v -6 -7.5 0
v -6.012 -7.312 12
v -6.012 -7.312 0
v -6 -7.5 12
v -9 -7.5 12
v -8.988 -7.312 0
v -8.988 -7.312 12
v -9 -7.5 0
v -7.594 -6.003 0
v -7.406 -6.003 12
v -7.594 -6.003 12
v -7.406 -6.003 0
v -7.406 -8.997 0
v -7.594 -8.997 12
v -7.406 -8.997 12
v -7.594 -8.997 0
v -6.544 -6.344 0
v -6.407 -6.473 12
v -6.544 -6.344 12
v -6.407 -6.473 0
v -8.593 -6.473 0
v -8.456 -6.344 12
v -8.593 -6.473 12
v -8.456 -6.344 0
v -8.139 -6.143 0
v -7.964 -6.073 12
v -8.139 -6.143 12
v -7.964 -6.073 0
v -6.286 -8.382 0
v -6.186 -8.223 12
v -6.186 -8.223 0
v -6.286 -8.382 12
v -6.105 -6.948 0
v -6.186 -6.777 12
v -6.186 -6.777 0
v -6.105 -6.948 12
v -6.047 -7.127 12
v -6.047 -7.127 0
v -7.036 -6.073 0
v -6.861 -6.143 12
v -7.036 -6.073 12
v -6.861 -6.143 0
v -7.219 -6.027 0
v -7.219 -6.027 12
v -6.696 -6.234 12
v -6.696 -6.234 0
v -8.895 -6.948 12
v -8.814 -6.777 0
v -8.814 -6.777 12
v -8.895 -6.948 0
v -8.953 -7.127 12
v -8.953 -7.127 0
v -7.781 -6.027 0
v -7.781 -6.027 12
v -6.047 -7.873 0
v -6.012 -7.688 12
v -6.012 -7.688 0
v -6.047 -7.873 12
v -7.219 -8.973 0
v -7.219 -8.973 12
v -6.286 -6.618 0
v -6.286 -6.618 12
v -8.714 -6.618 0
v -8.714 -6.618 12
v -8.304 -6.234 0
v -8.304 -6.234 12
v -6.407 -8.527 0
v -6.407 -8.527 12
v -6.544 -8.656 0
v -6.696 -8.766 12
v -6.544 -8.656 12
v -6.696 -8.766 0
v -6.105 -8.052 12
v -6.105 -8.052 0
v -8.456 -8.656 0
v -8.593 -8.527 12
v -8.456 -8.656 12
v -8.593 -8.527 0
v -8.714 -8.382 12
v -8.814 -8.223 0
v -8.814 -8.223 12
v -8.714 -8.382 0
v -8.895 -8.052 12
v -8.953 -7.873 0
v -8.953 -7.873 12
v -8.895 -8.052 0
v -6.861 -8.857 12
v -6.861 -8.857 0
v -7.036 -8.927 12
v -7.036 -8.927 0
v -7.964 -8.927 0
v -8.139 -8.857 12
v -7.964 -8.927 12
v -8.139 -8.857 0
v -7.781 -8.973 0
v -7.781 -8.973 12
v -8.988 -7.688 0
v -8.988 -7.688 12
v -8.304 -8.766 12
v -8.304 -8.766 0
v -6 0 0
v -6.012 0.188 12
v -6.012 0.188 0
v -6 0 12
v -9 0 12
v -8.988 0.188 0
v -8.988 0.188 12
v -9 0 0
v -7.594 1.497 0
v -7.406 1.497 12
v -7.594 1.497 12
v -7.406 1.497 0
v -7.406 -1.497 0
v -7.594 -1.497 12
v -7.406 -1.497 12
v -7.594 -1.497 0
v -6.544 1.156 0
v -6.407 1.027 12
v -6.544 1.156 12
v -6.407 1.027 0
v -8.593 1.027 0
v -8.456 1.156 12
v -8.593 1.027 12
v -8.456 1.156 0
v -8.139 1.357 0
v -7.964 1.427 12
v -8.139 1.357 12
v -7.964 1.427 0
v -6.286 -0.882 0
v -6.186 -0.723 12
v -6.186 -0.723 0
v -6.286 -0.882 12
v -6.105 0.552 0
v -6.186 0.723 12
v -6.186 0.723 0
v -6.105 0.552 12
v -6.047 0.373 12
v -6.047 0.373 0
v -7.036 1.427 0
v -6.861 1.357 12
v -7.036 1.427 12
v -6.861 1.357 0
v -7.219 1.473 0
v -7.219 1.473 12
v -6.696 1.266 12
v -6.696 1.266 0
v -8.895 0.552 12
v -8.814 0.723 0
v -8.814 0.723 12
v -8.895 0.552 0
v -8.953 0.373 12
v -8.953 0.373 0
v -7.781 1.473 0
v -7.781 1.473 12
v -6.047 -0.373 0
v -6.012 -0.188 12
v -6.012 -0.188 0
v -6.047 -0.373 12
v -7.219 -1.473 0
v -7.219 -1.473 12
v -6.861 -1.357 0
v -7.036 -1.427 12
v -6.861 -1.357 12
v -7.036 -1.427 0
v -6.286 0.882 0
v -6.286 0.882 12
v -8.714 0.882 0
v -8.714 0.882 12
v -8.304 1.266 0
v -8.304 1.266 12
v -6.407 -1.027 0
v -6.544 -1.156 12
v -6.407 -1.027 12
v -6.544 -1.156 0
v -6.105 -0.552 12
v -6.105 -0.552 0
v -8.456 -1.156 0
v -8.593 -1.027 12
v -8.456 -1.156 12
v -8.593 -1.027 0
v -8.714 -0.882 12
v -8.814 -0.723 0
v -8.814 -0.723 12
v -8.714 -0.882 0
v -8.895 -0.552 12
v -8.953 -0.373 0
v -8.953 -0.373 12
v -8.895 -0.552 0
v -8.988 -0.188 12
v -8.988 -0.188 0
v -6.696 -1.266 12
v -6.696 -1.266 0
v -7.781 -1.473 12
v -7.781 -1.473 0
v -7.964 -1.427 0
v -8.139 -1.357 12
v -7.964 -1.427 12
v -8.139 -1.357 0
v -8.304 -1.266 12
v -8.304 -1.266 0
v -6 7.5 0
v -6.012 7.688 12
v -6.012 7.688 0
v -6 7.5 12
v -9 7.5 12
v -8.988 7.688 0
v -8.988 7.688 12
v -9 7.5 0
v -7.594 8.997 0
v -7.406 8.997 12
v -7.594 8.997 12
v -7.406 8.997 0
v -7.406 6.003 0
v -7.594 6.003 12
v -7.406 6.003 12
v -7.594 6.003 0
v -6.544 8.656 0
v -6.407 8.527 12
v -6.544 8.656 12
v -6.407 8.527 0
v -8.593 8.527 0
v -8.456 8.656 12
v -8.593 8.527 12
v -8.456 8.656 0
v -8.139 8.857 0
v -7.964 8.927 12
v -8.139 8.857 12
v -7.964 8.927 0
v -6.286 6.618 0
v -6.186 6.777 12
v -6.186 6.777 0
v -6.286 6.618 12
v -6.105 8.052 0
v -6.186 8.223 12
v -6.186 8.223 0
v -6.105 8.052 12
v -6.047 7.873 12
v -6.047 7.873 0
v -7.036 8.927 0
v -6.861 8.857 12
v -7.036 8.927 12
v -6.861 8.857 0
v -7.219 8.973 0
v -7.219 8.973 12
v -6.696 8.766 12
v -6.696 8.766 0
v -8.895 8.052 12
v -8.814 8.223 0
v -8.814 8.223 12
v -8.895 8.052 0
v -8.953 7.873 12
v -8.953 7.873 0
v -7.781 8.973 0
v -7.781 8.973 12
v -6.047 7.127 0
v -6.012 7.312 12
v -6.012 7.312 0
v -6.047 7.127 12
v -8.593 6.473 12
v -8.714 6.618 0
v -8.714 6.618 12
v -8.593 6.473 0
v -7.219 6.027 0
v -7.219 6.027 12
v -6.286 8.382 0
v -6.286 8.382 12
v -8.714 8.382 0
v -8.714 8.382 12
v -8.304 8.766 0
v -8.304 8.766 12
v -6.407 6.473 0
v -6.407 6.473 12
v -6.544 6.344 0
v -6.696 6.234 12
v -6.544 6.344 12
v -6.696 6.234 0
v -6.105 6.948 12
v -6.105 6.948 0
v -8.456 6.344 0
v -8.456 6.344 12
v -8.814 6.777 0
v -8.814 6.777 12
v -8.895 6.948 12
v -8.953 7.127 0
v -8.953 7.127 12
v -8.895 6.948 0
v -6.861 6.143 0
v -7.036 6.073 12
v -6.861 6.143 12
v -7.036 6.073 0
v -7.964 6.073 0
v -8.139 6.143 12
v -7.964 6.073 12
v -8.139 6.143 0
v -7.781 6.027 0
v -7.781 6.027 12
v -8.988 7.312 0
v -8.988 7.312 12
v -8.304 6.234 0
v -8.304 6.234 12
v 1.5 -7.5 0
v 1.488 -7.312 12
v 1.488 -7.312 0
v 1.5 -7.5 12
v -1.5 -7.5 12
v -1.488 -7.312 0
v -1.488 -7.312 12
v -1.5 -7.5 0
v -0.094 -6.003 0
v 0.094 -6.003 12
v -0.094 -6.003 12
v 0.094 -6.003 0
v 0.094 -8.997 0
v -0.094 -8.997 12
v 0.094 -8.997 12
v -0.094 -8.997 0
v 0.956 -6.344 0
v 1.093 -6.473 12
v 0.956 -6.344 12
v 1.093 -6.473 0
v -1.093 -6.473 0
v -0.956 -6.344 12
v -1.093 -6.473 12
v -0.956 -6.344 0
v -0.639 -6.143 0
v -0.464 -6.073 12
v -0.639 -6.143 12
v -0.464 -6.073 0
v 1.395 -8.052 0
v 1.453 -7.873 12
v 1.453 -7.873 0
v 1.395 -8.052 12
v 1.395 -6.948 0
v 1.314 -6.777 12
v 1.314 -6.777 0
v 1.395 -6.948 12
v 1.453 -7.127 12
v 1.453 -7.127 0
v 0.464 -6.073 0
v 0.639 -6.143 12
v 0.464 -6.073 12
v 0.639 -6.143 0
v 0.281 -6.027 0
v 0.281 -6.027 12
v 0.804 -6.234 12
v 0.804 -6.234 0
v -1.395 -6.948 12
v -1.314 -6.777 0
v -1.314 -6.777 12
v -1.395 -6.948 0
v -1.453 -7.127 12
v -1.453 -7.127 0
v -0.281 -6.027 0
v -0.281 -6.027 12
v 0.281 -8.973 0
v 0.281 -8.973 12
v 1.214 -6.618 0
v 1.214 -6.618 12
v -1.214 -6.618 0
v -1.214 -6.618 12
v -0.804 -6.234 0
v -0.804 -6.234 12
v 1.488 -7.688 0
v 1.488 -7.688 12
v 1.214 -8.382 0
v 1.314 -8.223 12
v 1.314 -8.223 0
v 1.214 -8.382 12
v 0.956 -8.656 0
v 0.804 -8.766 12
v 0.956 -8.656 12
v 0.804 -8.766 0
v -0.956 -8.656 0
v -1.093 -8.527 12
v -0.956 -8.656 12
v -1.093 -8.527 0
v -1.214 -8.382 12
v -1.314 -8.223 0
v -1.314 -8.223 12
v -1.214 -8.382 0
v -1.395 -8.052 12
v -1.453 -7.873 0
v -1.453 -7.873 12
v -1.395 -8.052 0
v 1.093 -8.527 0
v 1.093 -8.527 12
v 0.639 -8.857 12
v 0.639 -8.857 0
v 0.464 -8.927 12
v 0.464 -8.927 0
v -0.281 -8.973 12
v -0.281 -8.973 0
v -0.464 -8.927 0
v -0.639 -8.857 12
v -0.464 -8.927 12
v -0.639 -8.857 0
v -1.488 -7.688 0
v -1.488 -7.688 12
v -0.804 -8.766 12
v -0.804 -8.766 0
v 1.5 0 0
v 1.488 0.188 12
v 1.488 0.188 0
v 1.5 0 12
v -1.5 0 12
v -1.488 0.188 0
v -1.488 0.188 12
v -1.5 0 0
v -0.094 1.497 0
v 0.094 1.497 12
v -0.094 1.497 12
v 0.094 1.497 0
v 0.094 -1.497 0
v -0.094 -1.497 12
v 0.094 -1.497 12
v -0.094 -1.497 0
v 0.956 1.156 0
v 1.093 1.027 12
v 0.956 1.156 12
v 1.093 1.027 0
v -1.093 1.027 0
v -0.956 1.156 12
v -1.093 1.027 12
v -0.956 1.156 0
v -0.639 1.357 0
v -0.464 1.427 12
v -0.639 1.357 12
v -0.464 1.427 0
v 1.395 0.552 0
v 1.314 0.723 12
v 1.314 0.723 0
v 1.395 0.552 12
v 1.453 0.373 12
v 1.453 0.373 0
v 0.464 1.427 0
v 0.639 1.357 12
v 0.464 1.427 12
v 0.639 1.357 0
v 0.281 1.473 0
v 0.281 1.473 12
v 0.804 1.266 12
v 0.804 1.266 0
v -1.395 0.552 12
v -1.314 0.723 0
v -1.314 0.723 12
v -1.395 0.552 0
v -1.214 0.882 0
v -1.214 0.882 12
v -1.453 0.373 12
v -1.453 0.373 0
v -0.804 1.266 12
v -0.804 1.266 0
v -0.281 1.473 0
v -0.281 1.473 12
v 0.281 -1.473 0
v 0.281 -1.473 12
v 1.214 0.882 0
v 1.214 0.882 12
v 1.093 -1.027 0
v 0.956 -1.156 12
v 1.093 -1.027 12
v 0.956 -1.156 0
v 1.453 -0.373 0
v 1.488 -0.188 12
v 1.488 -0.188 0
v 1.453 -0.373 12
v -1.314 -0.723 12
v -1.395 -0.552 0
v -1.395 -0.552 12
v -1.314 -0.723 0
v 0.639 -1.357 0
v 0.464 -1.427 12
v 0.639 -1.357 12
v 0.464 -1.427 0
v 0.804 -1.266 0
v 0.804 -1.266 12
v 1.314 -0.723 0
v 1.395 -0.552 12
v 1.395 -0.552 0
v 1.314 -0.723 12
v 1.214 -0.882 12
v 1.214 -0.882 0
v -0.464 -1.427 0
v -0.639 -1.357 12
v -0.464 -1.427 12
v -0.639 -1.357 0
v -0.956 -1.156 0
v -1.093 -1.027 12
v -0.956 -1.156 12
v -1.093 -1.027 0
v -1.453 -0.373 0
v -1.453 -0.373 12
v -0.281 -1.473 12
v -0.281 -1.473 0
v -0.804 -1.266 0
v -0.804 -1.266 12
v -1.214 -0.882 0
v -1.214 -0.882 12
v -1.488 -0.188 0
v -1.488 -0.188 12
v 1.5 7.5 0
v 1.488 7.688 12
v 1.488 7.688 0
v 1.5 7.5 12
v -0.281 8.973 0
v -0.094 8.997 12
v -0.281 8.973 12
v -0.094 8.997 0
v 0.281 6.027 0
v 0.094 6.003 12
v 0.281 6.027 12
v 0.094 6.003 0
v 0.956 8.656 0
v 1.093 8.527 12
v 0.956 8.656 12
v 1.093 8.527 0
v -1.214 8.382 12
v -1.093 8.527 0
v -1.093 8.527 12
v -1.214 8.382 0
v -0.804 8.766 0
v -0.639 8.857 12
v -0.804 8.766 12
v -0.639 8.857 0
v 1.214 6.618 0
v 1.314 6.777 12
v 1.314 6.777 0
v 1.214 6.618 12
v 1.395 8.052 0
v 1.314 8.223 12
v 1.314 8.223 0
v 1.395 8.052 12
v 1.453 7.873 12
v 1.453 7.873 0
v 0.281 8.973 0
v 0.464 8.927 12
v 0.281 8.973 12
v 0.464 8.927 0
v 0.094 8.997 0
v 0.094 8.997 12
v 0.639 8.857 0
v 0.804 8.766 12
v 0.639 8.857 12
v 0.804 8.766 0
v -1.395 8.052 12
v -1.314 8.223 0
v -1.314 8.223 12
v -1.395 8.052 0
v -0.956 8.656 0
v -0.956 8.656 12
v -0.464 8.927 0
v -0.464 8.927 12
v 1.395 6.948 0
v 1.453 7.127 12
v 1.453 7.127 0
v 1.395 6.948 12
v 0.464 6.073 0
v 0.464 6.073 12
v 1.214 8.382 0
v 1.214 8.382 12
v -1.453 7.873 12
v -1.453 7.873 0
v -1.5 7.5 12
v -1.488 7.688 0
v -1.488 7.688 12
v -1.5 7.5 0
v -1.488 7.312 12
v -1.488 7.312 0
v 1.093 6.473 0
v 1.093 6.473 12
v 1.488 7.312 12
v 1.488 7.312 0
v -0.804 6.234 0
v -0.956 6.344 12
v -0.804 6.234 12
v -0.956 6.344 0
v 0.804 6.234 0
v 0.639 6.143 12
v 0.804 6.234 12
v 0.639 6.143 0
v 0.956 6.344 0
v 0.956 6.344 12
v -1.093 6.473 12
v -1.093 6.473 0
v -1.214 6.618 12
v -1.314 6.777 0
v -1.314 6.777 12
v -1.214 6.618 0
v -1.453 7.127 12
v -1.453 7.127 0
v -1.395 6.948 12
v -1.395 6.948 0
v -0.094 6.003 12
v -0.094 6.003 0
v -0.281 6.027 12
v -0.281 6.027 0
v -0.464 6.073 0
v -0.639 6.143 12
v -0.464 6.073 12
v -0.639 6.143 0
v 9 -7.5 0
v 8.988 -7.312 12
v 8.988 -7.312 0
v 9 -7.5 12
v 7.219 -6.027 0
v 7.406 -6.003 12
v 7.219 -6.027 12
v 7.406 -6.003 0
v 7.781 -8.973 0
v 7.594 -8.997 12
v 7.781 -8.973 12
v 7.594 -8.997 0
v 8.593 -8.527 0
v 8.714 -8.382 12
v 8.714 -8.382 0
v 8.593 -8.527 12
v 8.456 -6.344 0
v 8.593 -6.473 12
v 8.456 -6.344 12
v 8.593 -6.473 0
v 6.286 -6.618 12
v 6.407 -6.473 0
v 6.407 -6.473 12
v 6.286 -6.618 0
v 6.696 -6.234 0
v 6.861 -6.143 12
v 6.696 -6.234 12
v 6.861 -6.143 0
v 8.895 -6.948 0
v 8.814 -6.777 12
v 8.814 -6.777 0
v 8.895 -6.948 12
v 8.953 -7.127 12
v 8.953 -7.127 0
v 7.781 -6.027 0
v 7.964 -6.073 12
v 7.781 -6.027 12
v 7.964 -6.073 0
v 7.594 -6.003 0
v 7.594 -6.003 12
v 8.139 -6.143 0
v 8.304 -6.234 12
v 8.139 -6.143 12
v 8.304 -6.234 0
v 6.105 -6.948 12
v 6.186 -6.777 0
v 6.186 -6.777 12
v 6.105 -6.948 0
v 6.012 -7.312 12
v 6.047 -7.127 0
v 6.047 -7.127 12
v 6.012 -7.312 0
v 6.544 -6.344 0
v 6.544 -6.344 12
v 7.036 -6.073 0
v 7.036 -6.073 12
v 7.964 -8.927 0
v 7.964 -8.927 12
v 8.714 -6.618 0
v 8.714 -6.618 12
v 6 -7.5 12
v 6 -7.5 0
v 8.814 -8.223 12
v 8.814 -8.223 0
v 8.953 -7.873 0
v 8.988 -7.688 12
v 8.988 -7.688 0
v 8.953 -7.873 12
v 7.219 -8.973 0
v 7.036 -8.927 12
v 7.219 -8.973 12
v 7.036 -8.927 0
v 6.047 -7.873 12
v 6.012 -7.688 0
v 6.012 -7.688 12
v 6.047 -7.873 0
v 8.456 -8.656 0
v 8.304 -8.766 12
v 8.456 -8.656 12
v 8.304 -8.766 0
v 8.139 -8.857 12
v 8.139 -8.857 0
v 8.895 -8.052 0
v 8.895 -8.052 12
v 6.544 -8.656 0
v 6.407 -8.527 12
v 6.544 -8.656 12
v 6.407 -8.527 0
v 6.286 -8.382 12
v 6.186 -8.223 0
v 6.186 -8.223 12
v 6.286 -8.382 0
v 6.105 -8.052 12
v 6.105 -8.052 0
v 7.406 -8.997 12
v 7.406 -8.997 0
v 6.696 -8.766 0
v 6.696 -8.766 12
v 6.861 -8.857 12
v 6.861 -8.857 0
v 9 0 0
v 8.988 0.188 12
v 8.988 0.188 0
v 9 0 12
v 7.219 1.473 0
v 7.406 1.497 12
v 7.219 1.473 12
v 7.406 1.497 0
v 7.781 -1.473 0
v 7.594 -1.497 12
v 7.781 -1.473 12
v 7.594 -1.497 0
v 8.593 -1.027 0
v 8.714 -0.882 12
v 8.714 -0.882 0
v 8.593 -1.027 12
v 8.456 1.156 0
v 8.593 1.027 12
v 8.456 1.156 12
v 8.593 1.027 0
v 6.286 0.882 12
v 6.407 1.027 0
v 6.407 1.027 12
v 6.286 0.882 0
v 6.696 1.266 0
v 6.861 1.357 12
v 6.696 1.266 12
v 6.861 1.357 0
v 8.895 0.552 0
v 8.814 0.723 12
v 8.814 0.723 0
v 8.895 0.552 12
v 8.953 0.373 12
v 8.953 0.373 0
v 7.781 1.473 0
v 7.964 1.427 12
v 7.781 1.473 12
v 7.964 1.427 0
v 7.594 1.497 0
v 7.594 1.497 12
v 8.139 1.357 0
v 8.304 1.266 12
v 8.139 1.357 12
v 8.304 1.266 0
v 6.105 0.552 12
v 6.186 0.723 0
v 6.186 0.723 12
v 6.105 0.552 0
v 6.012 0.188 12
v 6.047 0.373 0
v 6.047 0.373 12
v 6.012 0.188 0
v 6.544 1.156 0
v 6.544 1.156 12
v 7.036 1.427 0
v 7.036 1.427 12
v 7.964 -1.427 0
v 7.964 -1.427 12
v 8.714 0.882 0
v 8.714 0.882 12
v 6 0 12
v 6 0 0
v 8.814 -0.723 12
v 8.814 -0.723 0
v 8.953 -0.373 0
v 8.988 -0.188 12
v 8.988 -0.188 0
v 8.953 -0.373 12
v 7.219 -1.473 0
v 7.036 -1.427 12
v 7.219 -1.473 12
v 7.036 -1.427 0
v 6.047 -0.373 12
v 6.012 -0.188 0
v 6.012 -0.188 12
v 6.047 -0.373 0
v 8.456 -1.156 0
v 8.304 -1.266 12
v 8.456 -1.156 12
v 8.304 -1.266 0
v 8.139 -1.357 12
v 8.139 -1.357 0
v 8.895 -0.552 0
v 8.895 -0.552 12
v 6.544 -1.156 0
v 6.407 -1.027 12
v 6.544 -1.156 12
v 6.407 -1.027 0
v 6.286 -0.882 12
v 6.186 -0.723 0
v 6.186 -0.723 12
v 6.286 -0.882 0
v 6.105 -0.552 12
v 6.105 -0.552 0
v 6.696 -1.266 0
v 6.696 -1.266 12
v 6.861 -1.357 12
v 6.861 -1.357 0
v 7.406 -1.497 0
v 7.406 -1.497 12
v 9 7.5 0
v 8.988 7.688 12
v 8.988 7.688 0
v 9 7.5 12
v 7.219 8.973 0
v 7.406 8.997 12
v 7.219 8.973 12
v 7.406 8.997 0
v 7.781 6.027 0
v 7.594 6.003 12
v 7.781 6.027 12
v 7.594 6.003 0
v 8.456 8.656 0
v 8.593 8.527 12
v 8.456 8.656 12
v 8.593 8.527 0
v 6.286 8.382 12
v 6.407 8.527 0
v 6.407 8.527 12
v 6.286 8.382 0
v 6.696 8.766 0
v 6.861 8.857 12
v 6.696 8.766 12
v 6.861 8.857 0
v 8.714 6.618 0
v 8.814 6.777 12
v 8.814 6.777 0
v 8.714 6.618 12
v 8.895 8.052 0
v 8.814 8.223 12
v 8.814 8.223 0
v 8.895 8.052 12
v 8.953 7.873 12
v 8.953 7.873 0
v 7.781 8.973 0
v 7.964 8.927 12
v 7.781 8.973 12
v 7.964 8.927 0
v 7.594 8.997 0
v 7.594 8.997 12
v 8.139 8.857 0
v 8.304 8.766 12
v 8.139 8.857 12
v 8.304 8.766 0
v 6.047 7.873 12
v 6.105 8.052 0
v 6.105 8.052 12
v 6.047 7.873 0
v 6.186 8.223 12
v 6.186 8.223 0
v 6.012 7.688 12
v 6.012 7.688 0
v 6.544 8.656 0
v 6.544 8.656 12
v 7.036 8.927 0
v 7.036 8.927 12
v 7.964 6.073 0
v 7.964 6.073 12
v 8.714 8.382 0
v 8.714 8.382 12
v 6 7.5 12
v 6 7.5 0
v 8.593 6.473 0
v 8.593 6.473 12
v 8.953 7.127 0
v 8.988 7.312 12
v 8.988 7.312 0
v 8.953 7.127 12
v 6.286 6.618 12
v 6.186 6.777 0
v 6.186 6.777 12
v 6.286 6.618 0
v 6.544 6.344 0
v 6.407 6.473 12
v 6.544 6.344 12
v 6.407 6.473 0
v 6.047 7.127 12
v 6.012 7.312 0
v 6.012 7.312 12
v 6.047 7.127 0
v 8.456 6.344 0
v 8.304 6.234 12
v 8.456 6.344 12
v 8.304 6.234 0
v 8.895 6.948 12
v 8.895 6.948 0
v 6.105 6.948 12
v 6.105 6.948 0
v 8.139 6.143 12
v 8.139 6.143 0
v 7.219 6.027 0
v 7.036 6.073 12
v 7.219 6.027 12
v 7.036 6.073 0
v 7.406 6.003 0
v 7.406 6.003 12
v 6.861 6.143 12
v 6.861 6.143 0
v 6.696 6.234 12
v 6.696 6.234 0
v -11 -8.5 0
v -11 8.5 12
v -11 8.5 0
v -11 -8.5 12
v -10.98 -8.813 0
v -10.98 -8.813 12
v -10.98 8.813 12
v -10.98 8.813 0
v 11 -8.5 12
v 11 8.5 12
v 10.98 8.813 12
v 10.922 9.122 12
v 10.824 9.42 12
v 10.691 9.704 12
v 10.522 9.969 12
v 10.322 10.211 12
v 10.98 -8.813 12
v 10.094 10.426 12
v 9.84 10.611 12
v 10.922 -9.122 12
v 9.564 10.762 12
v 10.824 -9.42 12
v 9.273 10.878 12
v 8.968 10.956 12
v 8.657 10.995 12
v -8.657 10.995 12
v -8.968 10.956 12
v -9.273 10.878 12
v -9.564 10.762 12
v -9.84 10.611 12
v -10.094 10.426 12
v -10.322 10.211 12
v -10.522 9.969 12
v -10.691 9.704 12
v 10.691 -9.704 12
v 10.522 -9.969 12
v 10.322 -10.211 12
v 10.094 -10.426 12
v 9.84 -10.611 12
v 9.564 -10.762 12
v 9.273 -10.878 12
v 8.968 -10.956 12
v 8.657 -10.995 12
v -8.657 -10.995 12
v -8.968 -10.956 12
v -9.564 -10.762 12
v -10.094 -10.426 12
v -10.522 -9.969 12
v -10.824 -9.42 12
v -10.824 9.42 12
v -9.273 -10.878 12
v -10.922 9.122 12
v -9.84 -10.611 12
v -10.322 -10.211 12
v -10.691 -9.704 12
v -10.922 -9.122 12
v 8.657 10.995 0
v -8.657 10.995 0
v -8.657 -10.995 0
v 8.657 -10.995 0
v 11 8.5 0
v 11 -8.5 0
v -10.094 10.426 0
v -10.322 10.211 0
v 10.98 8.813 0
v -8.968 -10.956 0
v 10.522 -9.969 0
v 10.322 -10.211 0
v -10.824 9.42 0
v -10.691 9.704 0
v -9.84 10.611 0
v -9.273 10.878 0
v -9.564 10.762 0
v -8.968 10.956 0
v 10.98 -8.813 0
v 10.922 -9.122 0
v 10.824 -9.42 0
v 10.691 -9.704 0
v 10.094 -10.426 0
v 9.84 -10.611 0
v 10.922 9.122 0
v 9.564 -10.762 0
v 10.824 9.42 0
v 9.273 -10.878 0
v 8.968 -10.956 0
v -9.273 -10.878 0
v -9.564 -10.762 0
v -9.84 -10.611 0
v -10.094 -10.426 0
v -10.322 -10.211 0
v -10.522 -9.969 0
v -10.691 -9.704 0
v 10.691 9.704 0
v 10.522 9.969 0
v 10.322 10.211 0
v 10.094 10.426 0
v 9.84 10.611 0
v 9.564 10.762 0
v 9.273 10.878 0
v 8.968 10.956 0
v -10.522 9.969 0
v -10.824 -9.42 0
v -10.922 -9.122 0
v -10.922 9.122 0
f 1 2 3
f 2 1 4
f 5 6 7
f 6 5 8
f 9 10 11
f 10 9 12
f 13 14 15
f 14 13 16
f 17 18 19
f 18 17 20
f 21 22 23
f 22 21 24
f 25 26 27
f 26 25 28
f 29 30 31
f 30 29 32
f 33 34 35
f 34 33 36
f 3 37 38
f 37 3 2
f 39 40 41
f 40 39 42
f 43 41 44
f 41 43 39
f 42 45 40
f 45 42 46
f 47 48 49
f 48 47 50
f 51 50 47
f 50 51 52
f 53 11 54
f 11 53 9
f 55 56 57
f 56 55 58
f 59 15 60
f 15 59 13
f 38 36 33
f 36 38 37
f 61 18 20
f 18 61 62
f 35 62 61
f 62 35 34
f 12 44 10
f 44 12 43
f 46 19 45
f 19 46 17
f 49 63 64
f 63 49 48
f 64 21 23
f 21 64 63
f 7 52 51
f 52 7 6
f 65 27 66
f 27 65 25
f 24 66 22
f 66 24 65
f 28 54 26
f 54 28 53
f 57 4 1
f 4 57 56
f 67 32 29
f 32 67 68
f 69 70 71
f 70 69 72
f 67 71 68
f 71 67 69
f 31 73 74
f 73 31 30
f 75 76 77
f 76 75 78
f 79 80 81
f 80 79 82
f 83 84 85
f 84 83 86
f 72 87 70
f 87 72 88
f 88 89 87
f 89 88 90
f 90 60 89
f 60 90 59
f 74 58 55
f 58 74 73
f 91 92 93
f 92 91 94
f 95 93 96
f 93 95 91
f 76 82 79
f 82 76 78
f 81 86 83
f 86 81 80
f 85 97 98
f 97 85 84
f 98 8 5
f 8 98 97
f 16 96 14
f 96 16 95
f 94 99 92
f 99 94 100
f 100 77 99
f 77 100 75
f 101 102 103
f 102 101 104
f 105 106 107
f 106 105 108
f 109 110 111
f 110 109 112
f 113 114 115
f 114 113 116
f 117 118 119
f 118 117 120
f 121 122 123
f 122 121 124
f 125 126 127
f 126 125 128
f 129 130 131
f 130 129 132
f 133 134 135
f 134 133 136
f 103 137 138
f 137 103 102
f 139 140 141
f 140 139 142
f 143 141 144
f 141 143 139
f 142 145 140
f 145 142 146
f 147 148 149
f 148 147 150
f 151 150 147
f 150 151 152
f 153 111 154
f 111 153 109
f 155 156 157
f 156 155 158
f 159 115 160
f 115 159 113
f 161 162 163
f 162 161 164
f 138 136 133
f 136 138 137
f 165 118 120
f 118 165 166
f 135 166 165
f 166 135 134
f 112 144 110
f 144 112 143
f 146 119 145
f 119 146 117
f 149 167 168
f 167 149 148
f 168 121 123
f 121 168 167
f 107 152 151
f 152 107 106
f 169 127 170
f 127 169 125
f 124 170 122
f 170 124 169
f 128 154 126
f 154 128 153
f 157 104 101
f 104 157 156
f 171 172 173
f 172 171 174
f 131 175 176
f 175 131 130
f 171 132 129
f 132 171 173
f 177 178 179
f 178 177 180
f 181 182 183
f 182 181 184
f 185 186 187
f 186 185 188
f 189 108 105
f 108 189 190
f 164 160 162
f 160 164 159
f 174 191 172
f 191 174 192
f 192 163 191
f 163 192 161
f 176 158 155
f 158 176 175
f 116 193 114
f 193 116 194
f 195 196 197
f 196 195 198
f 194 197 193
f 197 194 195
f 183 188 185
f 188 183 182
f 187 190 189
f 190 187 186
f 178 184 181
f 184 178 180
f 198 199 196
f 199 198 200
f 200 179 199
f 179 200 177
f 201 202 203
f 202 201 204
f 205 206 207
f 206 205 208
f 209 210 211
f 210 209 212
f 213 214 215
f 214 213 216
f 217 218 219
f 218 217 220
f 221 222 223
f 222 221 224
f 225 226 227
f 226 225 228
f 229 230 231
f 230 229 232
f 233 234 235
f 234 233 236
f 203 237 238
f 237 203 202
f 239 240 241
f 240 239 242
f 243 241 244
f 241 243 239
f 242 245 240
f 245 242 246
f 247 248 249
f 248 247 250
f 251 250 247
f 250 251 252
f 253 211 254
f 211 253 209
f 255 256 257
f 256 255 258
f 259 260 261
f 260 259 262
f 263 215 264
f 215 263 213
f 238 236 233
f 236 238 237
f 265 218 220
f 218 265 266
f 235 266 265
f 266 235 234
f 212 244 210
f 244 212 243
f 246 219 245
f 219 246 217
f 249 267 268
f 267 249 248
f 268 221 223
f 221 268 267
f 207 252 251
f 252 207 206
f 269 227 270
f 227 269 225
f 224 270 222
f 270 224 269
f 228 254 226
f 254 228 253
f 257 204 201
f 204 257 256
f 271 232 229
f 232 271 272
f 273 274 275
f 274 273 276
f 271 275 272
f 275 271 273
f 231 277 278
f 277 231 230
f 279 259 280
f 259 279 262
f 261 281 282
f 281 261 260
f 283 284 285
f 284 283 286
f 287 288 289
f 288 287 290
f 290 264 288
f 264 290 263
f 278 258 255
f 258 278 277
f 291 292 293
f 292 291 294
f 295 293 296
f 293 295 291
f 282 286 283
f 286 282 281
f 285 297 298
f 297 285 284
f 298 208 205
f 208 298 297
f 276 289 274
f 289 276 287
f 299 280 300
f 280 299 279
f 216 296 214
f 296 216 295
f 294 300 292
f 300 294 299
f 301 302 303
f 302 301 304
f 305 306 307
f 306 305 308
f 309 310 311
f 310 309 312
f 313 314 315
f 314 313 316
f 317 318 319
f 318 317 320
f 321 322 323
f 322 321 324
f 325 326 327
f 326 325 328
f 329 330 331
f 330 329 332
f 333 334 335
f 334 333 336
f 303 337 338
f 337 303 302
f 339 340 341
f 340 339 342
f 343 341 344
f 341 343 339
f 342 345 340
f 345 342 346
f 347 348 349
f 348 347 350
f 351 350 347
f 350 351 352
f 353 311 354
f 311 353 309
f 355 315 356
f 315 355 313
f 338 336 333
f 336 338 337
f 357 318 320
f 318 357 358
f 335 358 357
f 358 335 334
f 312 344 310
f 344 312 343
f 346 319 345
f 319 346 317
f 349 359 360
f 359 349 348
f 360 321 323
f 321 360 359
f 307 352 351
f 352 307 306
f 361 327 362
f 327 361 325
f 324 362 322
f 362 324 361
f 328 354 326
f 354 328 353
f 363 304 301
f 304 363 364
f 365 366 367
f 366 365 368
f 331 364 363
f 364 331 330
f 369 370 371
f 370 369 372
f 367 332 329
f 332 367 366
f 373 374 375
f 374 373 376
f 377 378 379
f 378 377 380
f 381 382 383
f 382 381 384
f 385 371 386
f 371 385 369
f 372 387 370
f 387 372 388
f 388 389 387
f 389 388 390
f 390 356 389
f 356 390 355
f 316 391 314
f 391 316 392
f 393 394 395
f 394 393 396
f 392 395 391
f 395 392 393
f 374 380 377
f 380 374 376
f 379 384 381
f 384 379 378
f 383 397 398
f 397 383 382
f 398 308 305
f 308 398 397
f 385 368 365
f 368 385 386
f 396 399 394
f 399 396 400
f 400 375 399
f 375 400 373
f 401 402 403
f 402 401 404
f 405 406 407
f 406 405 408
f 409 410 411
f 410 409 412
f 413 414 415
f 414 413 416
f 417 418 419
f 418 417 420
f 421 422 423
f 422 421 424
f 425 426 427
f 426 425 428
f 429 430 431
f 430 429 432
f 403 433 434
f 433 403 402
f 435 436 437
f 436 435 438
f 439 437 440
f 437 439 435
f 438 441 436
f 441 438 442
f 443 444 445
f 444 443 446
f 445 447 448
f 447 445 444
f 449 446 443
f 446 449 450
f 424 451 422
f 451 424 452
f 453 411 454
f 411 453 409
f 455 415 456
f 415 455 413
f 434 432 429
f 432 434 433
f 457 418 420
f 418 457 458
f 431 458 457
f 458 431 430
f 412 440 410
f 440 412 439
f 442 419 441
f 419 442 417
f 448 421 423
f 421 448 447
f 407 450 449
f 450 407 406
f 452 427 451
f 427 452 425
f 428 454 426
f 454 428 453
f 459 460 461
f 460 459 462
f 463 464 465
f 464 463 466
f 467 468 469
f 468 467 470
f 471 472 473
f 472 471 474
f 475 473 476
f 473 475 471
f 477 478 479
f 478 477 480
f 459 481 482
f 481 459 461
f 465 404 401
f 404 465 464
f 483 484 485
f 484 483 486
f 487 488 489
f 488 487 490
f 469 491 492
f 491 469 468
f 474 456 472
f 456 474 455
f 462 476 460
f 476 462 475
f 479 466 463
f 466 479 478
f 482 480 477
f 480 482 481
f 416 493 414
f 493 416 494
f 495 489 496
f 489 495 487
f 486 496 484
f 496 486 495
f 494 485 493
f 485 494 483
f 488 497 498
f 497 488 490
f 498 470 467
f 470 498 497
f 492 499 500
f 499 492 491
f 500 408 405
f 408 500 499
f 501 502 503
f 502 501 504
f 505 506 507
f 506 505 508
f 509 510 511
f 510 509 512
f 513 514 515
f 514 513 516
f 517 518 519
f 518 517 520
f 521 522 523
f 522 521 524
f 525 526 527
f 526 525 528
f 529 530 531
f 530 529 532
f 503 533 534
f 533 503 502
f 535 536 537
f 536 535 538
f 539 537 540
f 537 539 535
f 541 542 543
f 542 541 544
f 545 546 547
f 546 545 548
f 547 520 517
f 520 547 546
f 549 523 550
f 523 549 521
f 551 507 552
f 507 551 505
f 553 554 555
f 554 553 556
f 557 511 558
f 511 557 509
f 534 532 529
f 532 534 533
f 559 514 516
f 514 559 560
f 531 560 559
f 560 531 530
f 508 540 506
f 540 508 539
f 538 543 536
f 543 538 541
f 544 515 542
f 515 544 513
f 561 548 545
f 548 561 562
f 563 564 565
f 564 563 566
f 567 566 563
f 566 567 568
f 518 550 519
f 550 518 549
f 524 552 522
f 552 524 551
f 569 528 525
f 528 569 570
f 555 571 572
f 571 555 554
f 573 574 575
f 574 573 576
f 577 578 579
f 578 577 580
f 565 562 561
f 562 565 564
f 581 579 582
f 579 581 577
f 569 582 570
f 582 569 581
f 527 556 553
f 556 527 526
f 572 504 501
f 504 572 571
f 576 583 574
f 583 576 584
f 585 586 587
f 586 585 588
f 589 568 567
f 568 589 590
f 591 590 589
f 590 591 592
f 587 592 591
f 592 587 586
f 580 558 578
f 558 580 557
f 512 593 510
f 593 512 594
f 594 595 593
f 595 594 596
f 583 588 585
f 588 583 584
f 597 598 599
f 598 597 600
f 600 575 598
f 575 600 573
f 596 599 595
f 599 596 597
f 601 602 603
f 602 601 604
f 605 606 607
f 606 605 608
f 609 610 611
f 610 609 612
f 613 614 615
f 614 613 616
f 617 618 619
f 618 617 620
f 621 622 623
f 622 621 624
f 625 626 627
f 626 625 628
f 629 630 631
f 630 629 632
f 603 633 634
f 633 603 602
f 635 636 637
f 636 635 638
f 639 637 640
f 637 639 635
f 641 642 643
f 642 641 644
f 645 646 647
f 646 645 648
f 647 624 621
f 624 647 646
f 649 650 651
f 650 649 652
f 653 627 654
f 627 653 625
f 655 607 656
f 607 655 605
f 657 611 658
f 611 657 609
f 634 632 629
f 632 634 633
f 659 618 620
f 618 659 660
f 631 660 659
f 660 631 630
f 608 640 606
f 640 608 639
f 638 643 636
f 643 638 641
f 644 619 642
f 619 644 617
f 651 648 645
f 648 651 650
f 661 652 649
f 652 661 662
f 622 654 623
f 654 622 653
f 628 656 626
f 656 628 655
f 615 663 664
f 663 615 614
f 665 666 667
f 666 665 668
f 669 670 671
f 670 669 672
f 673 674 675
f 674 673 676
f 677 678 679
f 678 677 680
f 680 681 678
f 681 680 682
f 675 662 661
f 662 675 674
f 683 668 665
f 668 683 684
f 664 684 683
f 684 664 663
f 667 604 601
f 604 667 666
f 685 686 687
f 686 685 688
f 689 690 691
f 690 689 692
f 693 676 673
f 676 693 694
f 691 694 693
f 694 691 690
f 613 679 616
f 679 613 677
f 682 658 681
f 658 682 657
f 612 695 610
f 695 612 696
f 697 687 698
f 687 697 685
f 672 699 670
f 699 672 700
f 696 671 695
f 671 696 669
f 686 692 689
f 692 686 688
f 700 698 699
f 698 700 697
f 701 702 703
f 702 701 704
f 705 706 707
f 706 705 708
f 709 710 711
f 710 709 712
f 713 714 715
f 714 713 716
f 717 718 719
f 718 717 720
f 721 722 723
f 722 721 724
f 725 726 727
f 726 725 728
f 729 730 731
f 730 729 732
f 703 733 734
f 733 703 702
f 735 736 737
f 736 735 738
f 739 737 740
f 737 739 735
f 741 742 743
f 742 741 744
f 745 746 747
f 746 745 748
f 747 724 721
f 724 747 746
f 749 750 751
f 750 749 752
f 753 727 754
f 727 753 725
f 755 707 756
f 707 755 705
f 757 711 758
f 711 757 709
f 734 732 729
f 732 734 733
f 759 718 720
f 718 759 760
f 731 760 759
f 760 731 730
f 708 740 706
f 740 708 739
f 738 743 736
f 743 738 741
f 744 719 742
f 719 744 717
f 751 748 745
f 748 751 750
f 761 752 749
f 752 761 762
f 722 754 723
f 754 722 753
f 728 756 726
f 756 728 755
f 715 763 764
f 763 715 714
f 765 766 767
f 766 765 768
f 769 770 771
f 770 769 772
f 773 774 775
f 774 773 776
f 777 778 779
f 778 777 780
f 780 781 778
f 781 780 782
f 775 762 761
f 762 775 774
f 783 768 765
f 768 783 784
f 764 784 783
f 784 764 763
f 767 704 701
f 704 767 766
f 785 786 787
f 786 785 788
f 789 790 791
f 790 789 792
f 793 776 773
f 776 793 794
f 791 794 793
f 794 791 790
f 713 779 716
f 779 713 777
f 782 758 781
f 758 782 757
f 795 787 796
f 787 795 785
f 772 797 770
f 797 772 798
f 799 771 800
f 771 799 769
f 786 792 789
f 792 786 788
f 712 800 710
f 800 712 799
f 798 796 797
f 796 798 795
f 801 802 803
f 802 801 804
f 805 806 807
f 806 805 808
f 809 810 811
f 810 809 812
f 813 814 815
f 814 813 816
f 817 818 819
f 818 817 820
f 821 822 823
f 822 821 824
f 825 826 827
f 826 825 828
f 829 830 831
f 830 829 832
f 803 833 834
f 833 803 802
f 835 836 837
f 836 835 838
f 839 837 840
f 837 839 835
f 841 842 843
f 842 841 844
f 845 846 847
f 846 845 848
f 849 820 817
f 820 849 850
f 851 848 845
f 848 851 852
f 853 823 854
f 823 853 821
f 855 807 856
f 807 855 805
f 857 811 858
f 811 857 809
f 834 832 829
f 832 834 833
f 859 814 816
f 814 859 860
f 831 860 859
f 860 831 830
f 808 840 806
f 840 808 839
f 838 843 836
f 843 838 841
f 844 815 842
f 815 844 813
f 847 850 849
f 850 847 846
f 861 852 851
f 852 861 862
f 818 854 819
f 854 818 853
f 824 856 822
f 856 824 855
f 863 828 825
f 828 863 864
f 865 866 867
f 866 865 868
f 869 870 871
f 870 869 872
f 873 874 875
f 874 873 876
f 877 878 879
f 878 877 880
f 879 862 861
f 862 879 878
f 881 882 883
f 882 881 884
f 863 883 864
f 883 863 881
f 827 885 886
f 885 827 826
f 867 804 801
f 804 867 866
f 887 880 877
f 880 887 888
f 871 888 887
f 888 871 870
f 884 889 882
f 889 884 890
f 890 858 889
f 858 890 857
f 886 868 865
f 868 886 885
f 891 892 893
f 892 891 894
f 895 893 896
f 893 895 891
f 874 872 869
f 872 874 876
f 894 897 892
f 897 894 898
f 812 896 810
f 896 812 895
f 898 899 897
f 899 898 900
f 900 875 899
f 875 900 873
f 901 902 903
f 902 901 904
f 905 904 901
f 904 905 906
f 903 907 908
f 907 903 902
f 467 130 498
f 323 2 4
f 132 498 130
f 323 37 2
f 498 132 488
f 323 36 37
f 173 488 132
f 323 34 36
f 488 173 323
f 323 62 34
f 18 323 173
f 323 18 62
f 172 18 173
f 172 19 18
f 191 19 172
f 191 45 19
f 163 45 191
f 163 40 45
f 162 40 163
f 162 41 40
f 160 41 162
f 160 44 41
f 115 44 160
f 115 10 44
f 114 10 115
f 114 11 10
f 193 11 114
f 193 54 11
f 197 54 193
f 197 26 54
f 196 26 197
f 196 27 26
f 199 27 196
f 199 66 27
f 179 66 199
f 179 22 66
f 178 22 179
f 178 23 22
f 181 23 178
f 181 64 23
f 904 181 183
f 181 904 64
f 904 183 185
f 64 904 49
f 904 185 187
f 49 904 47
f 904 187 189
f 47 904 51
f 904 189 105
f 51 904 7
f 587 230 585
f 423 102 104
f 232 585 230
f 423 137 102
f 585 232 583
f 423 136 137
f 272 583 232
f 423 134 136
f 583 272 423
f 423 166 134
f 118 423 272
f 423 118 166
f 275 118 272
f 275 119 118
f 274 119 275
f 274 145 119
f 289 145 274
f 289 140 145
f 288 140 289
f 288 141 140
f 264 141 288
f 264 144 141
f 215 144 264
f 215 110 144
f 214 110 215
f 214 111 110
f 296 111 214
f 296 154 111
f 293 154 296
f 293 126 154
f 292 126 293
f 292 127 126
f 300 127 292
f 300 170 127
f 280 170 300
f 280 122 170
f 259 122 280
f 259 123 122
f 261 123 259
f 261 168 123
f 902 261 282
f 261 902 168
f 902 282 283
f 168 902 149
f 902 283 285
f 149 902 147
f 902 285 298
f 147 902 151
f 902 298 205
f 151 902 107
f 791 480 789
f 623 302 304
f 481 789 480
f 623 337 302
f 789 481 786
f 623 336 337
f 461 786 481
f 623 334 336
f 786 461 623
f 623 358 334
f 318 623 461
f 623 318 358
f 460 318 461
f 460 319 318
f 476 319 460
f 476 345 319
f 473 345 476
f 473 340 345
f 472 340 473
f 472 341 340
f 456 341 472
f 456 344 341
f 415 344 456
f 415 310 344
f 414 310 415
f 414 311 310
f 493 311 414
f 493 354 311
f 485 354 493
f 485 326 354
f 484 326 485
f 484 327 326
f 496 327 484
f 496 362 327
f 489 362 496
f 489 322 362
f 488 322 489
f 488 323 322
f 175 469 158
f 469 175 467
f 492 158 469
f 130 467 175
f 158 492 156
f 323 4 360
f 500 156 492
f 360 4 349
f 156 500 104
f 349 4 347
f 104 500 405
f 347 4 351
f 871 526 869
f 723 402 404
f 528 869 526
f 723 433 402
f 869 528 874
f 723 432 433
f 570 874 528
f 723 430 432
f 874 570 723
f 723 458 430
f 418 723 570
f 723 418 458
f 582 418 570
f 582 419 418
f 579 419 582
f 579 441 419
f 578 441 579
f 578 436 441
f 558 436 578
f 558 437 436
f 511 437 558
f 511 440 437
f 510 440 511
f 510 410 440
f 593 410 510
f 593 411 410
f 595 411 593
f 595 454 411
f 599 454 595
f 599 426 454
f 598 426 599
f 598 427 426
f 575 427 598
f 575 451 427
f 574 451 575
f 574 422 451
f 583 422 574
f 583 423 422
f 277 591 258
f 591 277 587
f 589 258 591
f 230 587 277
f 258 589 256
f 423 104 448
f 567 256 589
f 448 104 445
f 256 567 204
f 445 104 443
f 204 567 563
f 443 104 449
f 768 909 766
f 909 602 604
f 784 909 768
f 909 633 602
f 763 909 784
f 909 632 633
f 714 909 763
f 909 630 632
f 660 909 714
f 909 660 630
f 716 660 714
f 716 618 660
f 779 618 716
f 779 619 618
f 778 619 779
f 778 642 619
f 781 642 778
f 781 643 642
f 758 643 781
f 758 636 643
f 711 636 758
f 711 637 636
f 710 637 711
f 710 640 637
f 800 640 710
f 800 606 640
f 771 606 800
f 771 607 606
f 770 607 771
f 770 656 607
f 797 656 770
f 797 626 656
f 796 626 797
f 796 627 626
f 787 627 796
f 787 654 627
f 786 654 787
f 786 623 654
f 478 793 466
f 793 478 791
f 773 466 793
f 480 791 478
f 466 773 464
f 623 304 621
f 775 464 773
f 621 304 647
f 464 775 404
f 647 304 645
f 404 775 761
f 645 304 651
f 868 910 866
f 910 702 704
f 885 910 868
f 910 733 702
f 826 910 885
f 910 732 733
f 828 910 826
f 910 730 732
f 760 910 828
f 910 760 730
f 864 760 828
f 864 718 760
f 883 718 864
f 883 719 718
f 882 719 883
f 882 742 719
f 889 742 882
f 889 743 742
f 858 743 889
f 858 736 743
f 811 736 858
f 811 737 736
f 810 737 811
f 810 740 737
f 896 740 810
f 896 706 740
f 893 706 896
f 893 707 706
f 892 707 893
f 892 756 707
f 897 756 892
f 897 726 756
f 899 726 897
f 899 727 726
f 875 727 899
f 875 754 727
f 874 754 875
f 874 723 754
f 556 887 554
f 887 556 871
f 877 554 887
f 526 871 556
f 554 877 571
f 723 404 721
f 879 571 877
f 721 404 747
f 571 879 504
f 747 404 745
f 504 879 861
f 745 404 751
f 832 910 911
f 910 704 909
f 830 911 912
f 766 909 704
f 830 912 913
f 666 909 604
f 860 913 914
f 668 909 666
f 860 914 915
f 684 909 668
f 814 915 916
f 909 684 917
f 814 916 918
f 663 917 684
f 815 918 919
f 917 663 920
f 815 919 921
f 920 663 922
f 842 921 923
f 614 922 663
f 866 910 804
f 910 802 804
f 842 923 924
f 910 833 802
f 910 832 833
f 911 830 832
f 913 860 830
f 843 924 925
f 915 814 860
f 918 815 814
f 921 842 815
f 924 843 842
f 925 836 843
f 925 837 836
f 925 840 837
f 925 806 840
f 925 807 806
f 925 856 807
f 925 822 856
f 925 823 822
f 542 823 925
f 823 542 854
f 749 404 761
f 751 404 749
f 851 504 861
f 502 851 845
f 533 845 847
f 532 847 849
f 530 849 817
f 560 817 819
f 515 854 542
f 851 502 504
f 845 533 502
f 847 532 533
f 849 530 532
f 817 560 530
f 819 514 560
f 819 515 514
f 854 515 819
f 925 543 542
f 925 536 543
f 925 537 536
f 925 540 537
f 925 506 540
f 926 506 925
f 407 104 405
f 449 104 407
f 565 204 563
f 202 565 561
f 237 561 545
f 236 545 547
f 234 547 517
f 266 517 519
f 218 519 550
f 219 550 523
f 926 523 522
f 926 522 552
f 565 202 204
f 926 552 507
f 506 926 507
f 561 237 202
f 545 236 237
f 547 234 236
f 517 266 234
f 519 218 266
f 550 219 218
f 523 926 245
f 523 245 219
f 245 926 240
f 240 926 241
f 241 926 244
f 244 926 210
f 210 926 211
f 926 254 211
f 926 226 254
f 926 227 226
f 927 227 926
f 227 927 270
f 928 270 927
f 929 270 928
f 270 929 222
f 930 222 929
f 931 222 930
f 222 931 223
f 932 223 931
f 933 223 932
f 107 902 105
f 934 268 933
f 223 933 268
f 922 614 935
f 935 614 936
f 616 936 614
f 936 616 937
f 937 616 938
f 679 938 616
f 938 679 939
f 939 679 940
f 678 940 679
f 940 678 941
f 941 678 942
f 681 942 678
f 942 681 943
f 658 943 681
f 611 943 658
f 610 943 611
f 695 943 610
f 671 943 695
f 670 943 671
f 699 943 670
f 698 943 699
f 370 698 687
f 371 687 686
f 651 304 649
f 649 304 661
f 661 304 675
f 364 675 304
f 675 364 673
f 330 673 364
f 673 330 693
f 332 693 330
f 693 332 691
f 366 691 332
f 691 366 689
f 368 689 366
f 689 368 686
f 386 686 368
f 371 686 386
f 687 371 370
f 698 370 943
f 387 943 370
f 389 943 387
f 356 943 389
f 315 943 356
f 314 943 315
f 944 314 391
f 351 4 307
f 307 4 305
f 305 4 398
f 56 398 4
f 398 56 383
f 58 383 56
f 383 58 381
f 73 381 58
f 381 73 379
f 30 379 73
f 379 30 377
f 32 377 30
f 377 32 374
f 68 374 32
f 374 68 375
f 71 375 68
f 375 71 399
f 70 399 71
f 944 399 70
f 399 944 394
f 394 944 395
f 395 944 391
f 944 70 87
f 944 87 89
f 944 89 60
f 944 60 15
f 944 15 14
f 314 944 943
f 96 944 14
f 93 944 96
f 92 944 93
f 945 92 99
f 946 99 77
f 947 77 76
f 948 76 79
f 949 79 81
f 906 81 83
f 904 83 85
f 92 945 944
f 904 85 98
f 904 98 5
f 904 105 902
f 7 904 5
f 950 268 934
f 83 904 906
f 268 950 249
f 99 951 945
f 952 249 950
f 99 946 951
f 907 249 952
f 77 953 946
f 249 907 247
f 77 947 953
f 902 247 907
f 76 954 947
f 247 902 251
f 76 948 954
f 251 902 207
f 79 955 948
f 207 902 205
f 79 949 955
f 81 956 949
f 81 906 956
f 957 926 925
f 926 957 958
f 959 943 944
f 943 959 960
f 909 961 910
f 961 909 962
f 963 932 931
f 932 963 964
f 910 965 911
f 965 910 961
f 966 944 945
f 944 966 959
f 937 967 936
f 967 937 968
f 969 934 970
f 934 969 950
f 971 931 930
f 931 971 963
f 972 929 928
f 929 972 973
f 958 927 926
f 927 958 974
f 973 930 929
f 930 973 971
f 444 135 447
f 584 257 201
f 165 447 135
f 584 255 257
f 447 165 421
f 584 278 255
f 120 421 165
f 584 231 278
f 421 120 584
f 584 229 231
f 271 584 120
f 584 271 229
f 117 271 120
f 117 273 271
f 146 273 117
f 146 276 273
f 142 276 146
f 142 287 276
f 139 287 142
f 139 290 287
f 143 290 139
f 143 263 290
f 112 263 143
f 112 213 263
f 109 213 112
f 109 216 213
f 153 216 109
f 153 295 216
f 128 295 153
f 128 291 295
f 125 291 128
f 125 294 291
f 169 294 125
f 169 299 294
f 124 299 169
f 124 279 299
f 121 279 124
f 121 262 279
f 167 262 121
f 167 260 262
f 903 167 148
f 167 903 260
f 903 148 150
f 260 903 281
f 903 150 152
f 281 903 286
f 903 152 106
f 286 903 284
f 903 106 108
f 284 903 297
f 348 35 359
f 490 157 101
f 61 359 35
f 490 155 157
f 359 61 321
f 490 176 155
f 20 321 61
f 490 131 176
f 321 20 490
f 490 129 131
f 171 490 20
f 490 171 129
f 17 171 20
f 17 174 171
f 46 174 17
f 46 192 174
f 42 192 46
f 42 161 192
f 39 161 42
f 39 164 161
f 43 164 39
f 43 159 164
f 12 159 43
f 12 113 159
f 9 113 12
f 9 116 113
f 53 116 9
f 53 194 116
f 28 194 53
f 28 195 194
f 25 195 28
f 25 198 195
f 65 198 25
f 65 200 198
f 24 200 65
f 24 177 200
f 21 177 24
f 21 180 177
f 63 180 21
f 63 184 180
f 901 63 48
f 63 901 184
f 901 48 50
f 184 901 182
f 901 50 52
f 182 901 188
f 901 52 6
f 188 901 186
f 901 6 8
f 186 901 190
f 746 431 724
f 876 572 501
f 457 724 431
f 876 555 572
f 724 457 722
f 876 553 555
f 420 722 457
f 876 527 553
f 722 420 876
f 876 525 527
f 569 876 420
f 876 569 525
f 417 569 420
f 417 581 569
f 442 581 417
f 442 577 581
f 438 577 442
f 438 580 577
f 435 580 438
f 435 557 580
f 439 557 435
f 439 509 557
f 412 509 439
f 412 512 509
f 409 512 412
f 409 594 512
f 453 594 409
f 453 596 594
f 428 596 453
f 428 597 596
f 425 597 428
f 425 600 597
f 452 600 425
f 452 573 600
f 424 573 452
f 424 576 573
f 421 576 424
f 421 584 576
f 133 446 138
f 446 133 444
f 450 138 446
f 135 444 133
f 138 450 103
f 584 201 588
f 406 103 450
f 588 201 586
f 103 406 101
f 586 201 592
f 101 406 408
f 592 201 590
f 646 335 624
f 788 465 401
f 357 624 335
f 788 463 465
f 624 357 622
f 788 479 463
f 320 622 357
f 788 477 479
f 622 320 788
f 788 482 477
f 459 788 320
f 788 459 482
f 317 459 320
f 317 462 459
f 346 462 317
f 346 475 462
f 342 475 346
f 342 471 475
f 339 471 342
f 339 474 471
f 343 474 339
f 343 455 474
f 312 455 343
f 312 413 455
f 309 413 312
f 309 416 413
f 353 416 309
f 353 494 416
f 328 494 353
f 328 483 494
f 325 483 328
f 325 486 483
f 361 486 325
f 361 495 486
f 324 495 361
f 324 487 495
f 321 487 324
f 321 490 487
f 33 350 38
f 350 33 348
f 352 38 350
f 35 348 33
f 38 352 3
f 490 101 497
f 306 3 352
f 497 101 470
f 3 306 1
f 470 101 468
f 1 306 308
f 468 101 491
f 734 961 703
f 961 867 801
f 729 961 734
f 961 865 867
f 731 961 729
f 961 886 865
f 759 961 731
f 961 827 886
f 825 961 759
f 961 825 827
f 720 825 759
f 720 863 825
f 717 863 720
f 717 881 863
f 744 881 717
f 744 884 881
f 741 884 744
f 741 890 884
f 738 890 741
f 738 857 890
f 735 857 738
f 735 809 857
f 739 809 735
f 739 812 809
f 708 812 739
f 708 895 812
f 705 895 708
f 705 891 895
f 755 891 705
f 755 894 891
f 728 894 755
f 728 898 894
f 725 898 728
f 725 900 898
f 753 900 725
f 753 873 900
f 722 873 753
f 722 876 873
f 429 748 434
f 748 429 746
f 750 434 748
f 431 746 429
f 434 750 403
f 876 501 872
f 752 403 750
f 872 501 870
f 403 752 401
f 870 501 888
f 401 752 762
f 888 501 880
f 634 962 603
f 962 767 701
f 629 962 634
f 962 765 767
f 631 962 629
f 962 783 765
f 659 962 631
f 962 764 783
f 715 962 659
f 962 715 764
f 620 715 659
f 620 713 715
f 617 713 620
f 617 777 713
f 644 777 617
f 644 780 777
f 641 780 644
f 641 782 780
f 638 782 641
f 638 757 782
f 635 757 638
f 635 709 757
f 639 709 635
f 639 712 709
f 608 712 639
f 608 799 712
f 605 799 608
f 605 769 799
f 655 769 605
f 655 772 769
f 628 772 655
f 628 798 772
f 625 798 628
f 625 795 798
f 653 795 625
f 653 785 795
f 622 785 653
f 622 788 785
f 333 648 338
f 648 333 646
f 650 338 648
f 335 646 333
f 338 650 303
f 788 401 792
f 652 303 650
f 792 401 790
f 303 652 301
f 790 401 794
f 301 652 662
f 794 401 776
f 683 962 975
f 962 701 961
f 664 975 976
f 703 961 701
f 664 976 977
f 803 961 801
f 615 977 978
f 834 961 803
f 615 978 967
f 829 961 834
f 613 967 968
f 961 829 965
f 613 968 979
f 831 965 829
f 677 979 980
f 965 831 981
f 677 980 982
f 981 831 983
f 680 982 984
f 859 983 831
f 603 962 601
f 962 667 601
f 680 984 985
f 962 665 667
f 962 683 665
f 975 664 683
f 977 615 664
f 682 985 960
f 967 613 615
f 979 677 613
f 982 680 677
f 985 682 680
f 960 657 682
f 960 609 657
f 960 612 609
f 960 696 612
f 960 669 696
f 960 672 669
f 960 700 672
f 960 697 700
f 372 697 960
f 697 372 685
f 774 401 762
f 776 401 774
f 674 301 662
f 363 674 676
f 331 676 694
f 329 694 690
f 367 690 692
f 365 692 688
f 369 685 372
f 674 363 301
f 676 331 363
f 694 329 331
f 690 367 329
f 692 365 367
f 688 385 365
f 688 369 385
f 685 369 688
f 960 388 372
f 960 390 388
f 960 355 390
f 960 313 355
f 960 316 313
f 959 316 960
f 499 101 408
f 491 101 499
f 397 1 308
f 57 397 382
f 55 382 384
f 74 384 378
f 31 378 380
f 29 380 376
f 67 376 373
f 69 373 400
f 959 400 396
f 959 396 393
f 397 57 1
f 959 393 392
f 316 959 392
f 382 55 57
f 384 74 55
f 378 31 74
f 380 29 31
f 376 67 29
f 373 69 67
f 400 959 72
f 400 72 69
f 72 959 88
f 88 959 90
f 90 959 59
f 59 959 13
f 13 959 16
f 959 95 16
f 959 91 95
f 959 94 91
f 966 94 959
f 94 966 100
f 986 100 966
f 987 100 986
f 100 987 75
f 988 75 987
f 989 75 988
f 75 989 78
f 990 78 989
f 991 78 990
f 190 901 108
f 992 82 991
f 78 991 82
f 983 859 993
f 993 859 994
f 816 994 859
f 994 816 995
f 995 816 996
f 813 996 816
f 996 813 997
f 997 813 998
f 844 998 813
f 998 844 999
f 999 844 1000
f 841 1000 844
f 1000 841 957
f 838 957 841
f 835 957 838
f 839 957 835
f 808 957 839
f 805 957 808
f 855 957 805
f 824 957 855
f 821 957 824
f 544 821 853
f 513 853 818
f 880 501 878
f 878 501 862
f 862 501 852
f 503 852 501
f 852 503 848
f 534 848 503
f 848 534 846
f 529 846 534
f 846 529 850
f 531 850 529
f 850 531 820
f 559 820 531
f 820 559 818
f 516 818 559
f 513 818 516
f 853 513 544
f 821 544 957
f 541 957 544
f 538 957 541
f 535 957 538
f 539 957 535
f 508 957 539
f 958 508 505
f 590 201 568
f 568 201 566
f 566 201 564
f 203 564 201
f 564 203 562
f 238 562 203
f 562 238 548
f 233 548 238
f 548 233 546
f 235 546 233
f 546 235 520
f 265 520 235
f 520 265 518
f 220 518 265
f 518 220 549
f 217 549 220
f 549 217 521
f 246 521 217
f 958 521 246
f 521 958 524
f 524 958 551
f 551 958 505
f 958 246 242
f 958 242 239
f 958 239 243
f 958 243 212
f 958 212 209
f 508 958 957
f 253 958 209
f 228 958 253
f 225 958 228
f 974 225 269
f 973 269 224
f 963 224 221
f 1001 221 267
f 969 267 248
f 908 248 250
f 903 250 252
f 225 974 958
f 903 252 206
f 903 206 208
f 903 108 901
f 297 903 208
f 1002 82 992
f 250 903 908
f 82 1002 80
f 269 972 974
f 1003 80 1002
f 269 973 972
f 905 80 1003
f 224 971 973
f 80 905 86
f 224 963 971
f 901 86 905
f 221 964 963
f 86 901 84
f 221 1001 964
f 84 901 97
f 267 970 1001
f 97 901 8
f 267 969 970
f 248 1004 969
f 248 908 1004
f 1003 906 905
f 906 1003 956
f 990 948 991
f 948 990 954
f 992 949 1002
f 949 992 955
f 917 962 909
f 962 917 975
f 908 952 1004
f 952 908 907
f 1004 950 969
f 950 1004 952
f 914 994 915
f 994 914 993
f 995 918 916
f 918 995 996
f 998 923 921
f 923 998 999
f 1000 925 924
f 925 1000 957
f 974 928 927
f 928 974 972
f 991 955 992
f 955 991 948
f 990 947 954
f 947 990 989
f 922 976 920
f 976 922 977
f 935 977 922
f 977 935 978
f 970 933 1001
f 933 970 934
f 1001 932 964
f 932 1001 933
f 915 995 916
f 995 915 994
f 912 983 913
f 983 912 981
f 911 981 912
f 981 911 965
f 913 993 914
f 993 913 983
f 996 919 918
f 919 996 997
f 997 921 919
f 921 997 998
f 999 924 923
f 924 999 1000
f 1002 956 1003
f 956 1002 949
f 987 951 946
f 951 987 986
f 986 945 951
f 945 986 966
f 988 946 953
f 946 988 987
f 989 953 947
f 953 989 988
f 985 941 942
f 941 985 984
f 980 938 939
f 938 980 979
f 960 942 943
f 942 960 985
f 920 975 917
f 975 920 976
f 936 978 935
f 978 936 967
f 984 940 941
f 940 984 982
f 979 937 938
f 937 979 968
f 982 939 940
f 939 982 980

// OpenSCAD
$fn = 50;


difference() {
	union() {
		translate(v = [0, 0, 0]) {
			rotate(a = [0, 0, 0]) {
				hull() {
					translate(v = [-8.5000000000, 8.5000000000, 0]) {
						rotate(a = [0, 0, 0]) {
							translate(v = [0, 0, 0]) {
								rotate(a = [0, 0, 0]) {
									cylinder(h = 12, r = 2.5000000000);
								}
							}
						}
					}
					translate(v = [8.5000000000, 8.5000000000, 0]) {
						rotate(a = [0, 0, 0]) {
							translate(v = [0, 0, 0]) {
								rotate(a = [0, 0, 0]) {
									cylinder(h = 12, r = 2.5000000000);
								}
							}
						}
					}
					translate(v = [-8.5000000000, -8.5000000000, 0]) {
						rotate(a = [0, 0, 0]) {
							translate(v = [0, 0, 0]) {
								rotate(a = [0, 0, 0]) {
									cylinder(h = 12, r = 2.5000000000);
								}
							}
						}
					}
					translate(v = [8.5000000000, -8.5000000000, 0]) {
						rotate(a = [0, 0, 0]) {
							translate(v = [0, 0, 0]) {
								rotate(a = [0, 0, 0]) {
									cylinder(h = 12, r = 2.5000000000);
								}
							}
						}
					}
				}
			}
		}
	}
	union() {
		translate(v = [-7.5000000000, -7.5000000000, 0]) {
			rotate(a = [0, 0, 0]) {
				translate(v = [0, 0, -50]) {
					rotate(a = [0, 0, 0]) {
						cylinder(h = 100, r = 1.5000000000);
					}
				}
			}
		}
		translate(v = [-7.5000000000, 0.0000000000, 0]) {
			rotate(a = [0, 0, 0]) {
				translate(v = [0, 0, -50]) {
					rotate(a = [0, 0, 0]) {
						cylinder(h = 100, r = 1.5000000000);
					}
				}
			}
		}
		translate(v = [-7.5000000000, 7.5000000000, 0]) {
			rotate(a = [0, 0, 0]) {
				translate(v = [0, 0, -50]) {
					rotate(a = [0, 0, 0]) {
						cylinder(h = 100, r = 1.5000000000);
					}
				}
			}
		}
		translate(v = [0.0000000000, -7.5000000000, 0]) {
			rotate(a = [0, 0, 0]) {
				translate(v = [0, 0, -50]) {
					rotate(a = [0, 0, 0]) {
						cylinder(h = 100, r = 1.5000000000);
					}
				}
			}
		}
		translate(v = [0.0000000000, 0.0000000000, 0]) {
			rotate(a = [0, 0, 0]) {
				translate(v = [0, 0, -50]) {
					rotate(a = [0, 0, 0]) {
						cylinder(h = 100, r = 1.5000000000);
					}
				}
			}
		}
		translate(v = [0.0000000000, 7.5000000000, 0]) {
			rotate(a = [0, 0, 0]) {
				translate(v = [0, 0, -50]) {
					rotate(a = [0, 0, 0]) {
						cylinder(h = 100, r = 1.5000000000);
					}
				}
			}
		}
		translate(v = [7.5000000000, -7.5000000000, 0]) {
			rotate(a = [0, 0, 0]) {
				translate(v = [0, 0, -50]) {
					rotate(a = [0, 0, 0]) {
						cylinder(h = 100, r = 1.5000000000);
					}
				}
			}
		}
		translate(v = [7.5000000000, 0.0000000000, 0]) {
			rotate(a = [0, 0, 0]) {
				translate(v = [0, 0, -50]) {
					rotate(a = [0, 0, 0]) {
						cylinder(h = 100, r = 1.5000000000);
					}
				}
			}
		}
		translate(v = [7.5000000000, 7.5000000000, 0]) {
			rotate(a = [0, 0, 0]) {
				translate(v = [0, 0, -50]) {
					rotate(a = [0, 0, 0]) {
						cylinder(h = 100, r = 1.5000000000);
					}
				}
			}
		}
	}
}
